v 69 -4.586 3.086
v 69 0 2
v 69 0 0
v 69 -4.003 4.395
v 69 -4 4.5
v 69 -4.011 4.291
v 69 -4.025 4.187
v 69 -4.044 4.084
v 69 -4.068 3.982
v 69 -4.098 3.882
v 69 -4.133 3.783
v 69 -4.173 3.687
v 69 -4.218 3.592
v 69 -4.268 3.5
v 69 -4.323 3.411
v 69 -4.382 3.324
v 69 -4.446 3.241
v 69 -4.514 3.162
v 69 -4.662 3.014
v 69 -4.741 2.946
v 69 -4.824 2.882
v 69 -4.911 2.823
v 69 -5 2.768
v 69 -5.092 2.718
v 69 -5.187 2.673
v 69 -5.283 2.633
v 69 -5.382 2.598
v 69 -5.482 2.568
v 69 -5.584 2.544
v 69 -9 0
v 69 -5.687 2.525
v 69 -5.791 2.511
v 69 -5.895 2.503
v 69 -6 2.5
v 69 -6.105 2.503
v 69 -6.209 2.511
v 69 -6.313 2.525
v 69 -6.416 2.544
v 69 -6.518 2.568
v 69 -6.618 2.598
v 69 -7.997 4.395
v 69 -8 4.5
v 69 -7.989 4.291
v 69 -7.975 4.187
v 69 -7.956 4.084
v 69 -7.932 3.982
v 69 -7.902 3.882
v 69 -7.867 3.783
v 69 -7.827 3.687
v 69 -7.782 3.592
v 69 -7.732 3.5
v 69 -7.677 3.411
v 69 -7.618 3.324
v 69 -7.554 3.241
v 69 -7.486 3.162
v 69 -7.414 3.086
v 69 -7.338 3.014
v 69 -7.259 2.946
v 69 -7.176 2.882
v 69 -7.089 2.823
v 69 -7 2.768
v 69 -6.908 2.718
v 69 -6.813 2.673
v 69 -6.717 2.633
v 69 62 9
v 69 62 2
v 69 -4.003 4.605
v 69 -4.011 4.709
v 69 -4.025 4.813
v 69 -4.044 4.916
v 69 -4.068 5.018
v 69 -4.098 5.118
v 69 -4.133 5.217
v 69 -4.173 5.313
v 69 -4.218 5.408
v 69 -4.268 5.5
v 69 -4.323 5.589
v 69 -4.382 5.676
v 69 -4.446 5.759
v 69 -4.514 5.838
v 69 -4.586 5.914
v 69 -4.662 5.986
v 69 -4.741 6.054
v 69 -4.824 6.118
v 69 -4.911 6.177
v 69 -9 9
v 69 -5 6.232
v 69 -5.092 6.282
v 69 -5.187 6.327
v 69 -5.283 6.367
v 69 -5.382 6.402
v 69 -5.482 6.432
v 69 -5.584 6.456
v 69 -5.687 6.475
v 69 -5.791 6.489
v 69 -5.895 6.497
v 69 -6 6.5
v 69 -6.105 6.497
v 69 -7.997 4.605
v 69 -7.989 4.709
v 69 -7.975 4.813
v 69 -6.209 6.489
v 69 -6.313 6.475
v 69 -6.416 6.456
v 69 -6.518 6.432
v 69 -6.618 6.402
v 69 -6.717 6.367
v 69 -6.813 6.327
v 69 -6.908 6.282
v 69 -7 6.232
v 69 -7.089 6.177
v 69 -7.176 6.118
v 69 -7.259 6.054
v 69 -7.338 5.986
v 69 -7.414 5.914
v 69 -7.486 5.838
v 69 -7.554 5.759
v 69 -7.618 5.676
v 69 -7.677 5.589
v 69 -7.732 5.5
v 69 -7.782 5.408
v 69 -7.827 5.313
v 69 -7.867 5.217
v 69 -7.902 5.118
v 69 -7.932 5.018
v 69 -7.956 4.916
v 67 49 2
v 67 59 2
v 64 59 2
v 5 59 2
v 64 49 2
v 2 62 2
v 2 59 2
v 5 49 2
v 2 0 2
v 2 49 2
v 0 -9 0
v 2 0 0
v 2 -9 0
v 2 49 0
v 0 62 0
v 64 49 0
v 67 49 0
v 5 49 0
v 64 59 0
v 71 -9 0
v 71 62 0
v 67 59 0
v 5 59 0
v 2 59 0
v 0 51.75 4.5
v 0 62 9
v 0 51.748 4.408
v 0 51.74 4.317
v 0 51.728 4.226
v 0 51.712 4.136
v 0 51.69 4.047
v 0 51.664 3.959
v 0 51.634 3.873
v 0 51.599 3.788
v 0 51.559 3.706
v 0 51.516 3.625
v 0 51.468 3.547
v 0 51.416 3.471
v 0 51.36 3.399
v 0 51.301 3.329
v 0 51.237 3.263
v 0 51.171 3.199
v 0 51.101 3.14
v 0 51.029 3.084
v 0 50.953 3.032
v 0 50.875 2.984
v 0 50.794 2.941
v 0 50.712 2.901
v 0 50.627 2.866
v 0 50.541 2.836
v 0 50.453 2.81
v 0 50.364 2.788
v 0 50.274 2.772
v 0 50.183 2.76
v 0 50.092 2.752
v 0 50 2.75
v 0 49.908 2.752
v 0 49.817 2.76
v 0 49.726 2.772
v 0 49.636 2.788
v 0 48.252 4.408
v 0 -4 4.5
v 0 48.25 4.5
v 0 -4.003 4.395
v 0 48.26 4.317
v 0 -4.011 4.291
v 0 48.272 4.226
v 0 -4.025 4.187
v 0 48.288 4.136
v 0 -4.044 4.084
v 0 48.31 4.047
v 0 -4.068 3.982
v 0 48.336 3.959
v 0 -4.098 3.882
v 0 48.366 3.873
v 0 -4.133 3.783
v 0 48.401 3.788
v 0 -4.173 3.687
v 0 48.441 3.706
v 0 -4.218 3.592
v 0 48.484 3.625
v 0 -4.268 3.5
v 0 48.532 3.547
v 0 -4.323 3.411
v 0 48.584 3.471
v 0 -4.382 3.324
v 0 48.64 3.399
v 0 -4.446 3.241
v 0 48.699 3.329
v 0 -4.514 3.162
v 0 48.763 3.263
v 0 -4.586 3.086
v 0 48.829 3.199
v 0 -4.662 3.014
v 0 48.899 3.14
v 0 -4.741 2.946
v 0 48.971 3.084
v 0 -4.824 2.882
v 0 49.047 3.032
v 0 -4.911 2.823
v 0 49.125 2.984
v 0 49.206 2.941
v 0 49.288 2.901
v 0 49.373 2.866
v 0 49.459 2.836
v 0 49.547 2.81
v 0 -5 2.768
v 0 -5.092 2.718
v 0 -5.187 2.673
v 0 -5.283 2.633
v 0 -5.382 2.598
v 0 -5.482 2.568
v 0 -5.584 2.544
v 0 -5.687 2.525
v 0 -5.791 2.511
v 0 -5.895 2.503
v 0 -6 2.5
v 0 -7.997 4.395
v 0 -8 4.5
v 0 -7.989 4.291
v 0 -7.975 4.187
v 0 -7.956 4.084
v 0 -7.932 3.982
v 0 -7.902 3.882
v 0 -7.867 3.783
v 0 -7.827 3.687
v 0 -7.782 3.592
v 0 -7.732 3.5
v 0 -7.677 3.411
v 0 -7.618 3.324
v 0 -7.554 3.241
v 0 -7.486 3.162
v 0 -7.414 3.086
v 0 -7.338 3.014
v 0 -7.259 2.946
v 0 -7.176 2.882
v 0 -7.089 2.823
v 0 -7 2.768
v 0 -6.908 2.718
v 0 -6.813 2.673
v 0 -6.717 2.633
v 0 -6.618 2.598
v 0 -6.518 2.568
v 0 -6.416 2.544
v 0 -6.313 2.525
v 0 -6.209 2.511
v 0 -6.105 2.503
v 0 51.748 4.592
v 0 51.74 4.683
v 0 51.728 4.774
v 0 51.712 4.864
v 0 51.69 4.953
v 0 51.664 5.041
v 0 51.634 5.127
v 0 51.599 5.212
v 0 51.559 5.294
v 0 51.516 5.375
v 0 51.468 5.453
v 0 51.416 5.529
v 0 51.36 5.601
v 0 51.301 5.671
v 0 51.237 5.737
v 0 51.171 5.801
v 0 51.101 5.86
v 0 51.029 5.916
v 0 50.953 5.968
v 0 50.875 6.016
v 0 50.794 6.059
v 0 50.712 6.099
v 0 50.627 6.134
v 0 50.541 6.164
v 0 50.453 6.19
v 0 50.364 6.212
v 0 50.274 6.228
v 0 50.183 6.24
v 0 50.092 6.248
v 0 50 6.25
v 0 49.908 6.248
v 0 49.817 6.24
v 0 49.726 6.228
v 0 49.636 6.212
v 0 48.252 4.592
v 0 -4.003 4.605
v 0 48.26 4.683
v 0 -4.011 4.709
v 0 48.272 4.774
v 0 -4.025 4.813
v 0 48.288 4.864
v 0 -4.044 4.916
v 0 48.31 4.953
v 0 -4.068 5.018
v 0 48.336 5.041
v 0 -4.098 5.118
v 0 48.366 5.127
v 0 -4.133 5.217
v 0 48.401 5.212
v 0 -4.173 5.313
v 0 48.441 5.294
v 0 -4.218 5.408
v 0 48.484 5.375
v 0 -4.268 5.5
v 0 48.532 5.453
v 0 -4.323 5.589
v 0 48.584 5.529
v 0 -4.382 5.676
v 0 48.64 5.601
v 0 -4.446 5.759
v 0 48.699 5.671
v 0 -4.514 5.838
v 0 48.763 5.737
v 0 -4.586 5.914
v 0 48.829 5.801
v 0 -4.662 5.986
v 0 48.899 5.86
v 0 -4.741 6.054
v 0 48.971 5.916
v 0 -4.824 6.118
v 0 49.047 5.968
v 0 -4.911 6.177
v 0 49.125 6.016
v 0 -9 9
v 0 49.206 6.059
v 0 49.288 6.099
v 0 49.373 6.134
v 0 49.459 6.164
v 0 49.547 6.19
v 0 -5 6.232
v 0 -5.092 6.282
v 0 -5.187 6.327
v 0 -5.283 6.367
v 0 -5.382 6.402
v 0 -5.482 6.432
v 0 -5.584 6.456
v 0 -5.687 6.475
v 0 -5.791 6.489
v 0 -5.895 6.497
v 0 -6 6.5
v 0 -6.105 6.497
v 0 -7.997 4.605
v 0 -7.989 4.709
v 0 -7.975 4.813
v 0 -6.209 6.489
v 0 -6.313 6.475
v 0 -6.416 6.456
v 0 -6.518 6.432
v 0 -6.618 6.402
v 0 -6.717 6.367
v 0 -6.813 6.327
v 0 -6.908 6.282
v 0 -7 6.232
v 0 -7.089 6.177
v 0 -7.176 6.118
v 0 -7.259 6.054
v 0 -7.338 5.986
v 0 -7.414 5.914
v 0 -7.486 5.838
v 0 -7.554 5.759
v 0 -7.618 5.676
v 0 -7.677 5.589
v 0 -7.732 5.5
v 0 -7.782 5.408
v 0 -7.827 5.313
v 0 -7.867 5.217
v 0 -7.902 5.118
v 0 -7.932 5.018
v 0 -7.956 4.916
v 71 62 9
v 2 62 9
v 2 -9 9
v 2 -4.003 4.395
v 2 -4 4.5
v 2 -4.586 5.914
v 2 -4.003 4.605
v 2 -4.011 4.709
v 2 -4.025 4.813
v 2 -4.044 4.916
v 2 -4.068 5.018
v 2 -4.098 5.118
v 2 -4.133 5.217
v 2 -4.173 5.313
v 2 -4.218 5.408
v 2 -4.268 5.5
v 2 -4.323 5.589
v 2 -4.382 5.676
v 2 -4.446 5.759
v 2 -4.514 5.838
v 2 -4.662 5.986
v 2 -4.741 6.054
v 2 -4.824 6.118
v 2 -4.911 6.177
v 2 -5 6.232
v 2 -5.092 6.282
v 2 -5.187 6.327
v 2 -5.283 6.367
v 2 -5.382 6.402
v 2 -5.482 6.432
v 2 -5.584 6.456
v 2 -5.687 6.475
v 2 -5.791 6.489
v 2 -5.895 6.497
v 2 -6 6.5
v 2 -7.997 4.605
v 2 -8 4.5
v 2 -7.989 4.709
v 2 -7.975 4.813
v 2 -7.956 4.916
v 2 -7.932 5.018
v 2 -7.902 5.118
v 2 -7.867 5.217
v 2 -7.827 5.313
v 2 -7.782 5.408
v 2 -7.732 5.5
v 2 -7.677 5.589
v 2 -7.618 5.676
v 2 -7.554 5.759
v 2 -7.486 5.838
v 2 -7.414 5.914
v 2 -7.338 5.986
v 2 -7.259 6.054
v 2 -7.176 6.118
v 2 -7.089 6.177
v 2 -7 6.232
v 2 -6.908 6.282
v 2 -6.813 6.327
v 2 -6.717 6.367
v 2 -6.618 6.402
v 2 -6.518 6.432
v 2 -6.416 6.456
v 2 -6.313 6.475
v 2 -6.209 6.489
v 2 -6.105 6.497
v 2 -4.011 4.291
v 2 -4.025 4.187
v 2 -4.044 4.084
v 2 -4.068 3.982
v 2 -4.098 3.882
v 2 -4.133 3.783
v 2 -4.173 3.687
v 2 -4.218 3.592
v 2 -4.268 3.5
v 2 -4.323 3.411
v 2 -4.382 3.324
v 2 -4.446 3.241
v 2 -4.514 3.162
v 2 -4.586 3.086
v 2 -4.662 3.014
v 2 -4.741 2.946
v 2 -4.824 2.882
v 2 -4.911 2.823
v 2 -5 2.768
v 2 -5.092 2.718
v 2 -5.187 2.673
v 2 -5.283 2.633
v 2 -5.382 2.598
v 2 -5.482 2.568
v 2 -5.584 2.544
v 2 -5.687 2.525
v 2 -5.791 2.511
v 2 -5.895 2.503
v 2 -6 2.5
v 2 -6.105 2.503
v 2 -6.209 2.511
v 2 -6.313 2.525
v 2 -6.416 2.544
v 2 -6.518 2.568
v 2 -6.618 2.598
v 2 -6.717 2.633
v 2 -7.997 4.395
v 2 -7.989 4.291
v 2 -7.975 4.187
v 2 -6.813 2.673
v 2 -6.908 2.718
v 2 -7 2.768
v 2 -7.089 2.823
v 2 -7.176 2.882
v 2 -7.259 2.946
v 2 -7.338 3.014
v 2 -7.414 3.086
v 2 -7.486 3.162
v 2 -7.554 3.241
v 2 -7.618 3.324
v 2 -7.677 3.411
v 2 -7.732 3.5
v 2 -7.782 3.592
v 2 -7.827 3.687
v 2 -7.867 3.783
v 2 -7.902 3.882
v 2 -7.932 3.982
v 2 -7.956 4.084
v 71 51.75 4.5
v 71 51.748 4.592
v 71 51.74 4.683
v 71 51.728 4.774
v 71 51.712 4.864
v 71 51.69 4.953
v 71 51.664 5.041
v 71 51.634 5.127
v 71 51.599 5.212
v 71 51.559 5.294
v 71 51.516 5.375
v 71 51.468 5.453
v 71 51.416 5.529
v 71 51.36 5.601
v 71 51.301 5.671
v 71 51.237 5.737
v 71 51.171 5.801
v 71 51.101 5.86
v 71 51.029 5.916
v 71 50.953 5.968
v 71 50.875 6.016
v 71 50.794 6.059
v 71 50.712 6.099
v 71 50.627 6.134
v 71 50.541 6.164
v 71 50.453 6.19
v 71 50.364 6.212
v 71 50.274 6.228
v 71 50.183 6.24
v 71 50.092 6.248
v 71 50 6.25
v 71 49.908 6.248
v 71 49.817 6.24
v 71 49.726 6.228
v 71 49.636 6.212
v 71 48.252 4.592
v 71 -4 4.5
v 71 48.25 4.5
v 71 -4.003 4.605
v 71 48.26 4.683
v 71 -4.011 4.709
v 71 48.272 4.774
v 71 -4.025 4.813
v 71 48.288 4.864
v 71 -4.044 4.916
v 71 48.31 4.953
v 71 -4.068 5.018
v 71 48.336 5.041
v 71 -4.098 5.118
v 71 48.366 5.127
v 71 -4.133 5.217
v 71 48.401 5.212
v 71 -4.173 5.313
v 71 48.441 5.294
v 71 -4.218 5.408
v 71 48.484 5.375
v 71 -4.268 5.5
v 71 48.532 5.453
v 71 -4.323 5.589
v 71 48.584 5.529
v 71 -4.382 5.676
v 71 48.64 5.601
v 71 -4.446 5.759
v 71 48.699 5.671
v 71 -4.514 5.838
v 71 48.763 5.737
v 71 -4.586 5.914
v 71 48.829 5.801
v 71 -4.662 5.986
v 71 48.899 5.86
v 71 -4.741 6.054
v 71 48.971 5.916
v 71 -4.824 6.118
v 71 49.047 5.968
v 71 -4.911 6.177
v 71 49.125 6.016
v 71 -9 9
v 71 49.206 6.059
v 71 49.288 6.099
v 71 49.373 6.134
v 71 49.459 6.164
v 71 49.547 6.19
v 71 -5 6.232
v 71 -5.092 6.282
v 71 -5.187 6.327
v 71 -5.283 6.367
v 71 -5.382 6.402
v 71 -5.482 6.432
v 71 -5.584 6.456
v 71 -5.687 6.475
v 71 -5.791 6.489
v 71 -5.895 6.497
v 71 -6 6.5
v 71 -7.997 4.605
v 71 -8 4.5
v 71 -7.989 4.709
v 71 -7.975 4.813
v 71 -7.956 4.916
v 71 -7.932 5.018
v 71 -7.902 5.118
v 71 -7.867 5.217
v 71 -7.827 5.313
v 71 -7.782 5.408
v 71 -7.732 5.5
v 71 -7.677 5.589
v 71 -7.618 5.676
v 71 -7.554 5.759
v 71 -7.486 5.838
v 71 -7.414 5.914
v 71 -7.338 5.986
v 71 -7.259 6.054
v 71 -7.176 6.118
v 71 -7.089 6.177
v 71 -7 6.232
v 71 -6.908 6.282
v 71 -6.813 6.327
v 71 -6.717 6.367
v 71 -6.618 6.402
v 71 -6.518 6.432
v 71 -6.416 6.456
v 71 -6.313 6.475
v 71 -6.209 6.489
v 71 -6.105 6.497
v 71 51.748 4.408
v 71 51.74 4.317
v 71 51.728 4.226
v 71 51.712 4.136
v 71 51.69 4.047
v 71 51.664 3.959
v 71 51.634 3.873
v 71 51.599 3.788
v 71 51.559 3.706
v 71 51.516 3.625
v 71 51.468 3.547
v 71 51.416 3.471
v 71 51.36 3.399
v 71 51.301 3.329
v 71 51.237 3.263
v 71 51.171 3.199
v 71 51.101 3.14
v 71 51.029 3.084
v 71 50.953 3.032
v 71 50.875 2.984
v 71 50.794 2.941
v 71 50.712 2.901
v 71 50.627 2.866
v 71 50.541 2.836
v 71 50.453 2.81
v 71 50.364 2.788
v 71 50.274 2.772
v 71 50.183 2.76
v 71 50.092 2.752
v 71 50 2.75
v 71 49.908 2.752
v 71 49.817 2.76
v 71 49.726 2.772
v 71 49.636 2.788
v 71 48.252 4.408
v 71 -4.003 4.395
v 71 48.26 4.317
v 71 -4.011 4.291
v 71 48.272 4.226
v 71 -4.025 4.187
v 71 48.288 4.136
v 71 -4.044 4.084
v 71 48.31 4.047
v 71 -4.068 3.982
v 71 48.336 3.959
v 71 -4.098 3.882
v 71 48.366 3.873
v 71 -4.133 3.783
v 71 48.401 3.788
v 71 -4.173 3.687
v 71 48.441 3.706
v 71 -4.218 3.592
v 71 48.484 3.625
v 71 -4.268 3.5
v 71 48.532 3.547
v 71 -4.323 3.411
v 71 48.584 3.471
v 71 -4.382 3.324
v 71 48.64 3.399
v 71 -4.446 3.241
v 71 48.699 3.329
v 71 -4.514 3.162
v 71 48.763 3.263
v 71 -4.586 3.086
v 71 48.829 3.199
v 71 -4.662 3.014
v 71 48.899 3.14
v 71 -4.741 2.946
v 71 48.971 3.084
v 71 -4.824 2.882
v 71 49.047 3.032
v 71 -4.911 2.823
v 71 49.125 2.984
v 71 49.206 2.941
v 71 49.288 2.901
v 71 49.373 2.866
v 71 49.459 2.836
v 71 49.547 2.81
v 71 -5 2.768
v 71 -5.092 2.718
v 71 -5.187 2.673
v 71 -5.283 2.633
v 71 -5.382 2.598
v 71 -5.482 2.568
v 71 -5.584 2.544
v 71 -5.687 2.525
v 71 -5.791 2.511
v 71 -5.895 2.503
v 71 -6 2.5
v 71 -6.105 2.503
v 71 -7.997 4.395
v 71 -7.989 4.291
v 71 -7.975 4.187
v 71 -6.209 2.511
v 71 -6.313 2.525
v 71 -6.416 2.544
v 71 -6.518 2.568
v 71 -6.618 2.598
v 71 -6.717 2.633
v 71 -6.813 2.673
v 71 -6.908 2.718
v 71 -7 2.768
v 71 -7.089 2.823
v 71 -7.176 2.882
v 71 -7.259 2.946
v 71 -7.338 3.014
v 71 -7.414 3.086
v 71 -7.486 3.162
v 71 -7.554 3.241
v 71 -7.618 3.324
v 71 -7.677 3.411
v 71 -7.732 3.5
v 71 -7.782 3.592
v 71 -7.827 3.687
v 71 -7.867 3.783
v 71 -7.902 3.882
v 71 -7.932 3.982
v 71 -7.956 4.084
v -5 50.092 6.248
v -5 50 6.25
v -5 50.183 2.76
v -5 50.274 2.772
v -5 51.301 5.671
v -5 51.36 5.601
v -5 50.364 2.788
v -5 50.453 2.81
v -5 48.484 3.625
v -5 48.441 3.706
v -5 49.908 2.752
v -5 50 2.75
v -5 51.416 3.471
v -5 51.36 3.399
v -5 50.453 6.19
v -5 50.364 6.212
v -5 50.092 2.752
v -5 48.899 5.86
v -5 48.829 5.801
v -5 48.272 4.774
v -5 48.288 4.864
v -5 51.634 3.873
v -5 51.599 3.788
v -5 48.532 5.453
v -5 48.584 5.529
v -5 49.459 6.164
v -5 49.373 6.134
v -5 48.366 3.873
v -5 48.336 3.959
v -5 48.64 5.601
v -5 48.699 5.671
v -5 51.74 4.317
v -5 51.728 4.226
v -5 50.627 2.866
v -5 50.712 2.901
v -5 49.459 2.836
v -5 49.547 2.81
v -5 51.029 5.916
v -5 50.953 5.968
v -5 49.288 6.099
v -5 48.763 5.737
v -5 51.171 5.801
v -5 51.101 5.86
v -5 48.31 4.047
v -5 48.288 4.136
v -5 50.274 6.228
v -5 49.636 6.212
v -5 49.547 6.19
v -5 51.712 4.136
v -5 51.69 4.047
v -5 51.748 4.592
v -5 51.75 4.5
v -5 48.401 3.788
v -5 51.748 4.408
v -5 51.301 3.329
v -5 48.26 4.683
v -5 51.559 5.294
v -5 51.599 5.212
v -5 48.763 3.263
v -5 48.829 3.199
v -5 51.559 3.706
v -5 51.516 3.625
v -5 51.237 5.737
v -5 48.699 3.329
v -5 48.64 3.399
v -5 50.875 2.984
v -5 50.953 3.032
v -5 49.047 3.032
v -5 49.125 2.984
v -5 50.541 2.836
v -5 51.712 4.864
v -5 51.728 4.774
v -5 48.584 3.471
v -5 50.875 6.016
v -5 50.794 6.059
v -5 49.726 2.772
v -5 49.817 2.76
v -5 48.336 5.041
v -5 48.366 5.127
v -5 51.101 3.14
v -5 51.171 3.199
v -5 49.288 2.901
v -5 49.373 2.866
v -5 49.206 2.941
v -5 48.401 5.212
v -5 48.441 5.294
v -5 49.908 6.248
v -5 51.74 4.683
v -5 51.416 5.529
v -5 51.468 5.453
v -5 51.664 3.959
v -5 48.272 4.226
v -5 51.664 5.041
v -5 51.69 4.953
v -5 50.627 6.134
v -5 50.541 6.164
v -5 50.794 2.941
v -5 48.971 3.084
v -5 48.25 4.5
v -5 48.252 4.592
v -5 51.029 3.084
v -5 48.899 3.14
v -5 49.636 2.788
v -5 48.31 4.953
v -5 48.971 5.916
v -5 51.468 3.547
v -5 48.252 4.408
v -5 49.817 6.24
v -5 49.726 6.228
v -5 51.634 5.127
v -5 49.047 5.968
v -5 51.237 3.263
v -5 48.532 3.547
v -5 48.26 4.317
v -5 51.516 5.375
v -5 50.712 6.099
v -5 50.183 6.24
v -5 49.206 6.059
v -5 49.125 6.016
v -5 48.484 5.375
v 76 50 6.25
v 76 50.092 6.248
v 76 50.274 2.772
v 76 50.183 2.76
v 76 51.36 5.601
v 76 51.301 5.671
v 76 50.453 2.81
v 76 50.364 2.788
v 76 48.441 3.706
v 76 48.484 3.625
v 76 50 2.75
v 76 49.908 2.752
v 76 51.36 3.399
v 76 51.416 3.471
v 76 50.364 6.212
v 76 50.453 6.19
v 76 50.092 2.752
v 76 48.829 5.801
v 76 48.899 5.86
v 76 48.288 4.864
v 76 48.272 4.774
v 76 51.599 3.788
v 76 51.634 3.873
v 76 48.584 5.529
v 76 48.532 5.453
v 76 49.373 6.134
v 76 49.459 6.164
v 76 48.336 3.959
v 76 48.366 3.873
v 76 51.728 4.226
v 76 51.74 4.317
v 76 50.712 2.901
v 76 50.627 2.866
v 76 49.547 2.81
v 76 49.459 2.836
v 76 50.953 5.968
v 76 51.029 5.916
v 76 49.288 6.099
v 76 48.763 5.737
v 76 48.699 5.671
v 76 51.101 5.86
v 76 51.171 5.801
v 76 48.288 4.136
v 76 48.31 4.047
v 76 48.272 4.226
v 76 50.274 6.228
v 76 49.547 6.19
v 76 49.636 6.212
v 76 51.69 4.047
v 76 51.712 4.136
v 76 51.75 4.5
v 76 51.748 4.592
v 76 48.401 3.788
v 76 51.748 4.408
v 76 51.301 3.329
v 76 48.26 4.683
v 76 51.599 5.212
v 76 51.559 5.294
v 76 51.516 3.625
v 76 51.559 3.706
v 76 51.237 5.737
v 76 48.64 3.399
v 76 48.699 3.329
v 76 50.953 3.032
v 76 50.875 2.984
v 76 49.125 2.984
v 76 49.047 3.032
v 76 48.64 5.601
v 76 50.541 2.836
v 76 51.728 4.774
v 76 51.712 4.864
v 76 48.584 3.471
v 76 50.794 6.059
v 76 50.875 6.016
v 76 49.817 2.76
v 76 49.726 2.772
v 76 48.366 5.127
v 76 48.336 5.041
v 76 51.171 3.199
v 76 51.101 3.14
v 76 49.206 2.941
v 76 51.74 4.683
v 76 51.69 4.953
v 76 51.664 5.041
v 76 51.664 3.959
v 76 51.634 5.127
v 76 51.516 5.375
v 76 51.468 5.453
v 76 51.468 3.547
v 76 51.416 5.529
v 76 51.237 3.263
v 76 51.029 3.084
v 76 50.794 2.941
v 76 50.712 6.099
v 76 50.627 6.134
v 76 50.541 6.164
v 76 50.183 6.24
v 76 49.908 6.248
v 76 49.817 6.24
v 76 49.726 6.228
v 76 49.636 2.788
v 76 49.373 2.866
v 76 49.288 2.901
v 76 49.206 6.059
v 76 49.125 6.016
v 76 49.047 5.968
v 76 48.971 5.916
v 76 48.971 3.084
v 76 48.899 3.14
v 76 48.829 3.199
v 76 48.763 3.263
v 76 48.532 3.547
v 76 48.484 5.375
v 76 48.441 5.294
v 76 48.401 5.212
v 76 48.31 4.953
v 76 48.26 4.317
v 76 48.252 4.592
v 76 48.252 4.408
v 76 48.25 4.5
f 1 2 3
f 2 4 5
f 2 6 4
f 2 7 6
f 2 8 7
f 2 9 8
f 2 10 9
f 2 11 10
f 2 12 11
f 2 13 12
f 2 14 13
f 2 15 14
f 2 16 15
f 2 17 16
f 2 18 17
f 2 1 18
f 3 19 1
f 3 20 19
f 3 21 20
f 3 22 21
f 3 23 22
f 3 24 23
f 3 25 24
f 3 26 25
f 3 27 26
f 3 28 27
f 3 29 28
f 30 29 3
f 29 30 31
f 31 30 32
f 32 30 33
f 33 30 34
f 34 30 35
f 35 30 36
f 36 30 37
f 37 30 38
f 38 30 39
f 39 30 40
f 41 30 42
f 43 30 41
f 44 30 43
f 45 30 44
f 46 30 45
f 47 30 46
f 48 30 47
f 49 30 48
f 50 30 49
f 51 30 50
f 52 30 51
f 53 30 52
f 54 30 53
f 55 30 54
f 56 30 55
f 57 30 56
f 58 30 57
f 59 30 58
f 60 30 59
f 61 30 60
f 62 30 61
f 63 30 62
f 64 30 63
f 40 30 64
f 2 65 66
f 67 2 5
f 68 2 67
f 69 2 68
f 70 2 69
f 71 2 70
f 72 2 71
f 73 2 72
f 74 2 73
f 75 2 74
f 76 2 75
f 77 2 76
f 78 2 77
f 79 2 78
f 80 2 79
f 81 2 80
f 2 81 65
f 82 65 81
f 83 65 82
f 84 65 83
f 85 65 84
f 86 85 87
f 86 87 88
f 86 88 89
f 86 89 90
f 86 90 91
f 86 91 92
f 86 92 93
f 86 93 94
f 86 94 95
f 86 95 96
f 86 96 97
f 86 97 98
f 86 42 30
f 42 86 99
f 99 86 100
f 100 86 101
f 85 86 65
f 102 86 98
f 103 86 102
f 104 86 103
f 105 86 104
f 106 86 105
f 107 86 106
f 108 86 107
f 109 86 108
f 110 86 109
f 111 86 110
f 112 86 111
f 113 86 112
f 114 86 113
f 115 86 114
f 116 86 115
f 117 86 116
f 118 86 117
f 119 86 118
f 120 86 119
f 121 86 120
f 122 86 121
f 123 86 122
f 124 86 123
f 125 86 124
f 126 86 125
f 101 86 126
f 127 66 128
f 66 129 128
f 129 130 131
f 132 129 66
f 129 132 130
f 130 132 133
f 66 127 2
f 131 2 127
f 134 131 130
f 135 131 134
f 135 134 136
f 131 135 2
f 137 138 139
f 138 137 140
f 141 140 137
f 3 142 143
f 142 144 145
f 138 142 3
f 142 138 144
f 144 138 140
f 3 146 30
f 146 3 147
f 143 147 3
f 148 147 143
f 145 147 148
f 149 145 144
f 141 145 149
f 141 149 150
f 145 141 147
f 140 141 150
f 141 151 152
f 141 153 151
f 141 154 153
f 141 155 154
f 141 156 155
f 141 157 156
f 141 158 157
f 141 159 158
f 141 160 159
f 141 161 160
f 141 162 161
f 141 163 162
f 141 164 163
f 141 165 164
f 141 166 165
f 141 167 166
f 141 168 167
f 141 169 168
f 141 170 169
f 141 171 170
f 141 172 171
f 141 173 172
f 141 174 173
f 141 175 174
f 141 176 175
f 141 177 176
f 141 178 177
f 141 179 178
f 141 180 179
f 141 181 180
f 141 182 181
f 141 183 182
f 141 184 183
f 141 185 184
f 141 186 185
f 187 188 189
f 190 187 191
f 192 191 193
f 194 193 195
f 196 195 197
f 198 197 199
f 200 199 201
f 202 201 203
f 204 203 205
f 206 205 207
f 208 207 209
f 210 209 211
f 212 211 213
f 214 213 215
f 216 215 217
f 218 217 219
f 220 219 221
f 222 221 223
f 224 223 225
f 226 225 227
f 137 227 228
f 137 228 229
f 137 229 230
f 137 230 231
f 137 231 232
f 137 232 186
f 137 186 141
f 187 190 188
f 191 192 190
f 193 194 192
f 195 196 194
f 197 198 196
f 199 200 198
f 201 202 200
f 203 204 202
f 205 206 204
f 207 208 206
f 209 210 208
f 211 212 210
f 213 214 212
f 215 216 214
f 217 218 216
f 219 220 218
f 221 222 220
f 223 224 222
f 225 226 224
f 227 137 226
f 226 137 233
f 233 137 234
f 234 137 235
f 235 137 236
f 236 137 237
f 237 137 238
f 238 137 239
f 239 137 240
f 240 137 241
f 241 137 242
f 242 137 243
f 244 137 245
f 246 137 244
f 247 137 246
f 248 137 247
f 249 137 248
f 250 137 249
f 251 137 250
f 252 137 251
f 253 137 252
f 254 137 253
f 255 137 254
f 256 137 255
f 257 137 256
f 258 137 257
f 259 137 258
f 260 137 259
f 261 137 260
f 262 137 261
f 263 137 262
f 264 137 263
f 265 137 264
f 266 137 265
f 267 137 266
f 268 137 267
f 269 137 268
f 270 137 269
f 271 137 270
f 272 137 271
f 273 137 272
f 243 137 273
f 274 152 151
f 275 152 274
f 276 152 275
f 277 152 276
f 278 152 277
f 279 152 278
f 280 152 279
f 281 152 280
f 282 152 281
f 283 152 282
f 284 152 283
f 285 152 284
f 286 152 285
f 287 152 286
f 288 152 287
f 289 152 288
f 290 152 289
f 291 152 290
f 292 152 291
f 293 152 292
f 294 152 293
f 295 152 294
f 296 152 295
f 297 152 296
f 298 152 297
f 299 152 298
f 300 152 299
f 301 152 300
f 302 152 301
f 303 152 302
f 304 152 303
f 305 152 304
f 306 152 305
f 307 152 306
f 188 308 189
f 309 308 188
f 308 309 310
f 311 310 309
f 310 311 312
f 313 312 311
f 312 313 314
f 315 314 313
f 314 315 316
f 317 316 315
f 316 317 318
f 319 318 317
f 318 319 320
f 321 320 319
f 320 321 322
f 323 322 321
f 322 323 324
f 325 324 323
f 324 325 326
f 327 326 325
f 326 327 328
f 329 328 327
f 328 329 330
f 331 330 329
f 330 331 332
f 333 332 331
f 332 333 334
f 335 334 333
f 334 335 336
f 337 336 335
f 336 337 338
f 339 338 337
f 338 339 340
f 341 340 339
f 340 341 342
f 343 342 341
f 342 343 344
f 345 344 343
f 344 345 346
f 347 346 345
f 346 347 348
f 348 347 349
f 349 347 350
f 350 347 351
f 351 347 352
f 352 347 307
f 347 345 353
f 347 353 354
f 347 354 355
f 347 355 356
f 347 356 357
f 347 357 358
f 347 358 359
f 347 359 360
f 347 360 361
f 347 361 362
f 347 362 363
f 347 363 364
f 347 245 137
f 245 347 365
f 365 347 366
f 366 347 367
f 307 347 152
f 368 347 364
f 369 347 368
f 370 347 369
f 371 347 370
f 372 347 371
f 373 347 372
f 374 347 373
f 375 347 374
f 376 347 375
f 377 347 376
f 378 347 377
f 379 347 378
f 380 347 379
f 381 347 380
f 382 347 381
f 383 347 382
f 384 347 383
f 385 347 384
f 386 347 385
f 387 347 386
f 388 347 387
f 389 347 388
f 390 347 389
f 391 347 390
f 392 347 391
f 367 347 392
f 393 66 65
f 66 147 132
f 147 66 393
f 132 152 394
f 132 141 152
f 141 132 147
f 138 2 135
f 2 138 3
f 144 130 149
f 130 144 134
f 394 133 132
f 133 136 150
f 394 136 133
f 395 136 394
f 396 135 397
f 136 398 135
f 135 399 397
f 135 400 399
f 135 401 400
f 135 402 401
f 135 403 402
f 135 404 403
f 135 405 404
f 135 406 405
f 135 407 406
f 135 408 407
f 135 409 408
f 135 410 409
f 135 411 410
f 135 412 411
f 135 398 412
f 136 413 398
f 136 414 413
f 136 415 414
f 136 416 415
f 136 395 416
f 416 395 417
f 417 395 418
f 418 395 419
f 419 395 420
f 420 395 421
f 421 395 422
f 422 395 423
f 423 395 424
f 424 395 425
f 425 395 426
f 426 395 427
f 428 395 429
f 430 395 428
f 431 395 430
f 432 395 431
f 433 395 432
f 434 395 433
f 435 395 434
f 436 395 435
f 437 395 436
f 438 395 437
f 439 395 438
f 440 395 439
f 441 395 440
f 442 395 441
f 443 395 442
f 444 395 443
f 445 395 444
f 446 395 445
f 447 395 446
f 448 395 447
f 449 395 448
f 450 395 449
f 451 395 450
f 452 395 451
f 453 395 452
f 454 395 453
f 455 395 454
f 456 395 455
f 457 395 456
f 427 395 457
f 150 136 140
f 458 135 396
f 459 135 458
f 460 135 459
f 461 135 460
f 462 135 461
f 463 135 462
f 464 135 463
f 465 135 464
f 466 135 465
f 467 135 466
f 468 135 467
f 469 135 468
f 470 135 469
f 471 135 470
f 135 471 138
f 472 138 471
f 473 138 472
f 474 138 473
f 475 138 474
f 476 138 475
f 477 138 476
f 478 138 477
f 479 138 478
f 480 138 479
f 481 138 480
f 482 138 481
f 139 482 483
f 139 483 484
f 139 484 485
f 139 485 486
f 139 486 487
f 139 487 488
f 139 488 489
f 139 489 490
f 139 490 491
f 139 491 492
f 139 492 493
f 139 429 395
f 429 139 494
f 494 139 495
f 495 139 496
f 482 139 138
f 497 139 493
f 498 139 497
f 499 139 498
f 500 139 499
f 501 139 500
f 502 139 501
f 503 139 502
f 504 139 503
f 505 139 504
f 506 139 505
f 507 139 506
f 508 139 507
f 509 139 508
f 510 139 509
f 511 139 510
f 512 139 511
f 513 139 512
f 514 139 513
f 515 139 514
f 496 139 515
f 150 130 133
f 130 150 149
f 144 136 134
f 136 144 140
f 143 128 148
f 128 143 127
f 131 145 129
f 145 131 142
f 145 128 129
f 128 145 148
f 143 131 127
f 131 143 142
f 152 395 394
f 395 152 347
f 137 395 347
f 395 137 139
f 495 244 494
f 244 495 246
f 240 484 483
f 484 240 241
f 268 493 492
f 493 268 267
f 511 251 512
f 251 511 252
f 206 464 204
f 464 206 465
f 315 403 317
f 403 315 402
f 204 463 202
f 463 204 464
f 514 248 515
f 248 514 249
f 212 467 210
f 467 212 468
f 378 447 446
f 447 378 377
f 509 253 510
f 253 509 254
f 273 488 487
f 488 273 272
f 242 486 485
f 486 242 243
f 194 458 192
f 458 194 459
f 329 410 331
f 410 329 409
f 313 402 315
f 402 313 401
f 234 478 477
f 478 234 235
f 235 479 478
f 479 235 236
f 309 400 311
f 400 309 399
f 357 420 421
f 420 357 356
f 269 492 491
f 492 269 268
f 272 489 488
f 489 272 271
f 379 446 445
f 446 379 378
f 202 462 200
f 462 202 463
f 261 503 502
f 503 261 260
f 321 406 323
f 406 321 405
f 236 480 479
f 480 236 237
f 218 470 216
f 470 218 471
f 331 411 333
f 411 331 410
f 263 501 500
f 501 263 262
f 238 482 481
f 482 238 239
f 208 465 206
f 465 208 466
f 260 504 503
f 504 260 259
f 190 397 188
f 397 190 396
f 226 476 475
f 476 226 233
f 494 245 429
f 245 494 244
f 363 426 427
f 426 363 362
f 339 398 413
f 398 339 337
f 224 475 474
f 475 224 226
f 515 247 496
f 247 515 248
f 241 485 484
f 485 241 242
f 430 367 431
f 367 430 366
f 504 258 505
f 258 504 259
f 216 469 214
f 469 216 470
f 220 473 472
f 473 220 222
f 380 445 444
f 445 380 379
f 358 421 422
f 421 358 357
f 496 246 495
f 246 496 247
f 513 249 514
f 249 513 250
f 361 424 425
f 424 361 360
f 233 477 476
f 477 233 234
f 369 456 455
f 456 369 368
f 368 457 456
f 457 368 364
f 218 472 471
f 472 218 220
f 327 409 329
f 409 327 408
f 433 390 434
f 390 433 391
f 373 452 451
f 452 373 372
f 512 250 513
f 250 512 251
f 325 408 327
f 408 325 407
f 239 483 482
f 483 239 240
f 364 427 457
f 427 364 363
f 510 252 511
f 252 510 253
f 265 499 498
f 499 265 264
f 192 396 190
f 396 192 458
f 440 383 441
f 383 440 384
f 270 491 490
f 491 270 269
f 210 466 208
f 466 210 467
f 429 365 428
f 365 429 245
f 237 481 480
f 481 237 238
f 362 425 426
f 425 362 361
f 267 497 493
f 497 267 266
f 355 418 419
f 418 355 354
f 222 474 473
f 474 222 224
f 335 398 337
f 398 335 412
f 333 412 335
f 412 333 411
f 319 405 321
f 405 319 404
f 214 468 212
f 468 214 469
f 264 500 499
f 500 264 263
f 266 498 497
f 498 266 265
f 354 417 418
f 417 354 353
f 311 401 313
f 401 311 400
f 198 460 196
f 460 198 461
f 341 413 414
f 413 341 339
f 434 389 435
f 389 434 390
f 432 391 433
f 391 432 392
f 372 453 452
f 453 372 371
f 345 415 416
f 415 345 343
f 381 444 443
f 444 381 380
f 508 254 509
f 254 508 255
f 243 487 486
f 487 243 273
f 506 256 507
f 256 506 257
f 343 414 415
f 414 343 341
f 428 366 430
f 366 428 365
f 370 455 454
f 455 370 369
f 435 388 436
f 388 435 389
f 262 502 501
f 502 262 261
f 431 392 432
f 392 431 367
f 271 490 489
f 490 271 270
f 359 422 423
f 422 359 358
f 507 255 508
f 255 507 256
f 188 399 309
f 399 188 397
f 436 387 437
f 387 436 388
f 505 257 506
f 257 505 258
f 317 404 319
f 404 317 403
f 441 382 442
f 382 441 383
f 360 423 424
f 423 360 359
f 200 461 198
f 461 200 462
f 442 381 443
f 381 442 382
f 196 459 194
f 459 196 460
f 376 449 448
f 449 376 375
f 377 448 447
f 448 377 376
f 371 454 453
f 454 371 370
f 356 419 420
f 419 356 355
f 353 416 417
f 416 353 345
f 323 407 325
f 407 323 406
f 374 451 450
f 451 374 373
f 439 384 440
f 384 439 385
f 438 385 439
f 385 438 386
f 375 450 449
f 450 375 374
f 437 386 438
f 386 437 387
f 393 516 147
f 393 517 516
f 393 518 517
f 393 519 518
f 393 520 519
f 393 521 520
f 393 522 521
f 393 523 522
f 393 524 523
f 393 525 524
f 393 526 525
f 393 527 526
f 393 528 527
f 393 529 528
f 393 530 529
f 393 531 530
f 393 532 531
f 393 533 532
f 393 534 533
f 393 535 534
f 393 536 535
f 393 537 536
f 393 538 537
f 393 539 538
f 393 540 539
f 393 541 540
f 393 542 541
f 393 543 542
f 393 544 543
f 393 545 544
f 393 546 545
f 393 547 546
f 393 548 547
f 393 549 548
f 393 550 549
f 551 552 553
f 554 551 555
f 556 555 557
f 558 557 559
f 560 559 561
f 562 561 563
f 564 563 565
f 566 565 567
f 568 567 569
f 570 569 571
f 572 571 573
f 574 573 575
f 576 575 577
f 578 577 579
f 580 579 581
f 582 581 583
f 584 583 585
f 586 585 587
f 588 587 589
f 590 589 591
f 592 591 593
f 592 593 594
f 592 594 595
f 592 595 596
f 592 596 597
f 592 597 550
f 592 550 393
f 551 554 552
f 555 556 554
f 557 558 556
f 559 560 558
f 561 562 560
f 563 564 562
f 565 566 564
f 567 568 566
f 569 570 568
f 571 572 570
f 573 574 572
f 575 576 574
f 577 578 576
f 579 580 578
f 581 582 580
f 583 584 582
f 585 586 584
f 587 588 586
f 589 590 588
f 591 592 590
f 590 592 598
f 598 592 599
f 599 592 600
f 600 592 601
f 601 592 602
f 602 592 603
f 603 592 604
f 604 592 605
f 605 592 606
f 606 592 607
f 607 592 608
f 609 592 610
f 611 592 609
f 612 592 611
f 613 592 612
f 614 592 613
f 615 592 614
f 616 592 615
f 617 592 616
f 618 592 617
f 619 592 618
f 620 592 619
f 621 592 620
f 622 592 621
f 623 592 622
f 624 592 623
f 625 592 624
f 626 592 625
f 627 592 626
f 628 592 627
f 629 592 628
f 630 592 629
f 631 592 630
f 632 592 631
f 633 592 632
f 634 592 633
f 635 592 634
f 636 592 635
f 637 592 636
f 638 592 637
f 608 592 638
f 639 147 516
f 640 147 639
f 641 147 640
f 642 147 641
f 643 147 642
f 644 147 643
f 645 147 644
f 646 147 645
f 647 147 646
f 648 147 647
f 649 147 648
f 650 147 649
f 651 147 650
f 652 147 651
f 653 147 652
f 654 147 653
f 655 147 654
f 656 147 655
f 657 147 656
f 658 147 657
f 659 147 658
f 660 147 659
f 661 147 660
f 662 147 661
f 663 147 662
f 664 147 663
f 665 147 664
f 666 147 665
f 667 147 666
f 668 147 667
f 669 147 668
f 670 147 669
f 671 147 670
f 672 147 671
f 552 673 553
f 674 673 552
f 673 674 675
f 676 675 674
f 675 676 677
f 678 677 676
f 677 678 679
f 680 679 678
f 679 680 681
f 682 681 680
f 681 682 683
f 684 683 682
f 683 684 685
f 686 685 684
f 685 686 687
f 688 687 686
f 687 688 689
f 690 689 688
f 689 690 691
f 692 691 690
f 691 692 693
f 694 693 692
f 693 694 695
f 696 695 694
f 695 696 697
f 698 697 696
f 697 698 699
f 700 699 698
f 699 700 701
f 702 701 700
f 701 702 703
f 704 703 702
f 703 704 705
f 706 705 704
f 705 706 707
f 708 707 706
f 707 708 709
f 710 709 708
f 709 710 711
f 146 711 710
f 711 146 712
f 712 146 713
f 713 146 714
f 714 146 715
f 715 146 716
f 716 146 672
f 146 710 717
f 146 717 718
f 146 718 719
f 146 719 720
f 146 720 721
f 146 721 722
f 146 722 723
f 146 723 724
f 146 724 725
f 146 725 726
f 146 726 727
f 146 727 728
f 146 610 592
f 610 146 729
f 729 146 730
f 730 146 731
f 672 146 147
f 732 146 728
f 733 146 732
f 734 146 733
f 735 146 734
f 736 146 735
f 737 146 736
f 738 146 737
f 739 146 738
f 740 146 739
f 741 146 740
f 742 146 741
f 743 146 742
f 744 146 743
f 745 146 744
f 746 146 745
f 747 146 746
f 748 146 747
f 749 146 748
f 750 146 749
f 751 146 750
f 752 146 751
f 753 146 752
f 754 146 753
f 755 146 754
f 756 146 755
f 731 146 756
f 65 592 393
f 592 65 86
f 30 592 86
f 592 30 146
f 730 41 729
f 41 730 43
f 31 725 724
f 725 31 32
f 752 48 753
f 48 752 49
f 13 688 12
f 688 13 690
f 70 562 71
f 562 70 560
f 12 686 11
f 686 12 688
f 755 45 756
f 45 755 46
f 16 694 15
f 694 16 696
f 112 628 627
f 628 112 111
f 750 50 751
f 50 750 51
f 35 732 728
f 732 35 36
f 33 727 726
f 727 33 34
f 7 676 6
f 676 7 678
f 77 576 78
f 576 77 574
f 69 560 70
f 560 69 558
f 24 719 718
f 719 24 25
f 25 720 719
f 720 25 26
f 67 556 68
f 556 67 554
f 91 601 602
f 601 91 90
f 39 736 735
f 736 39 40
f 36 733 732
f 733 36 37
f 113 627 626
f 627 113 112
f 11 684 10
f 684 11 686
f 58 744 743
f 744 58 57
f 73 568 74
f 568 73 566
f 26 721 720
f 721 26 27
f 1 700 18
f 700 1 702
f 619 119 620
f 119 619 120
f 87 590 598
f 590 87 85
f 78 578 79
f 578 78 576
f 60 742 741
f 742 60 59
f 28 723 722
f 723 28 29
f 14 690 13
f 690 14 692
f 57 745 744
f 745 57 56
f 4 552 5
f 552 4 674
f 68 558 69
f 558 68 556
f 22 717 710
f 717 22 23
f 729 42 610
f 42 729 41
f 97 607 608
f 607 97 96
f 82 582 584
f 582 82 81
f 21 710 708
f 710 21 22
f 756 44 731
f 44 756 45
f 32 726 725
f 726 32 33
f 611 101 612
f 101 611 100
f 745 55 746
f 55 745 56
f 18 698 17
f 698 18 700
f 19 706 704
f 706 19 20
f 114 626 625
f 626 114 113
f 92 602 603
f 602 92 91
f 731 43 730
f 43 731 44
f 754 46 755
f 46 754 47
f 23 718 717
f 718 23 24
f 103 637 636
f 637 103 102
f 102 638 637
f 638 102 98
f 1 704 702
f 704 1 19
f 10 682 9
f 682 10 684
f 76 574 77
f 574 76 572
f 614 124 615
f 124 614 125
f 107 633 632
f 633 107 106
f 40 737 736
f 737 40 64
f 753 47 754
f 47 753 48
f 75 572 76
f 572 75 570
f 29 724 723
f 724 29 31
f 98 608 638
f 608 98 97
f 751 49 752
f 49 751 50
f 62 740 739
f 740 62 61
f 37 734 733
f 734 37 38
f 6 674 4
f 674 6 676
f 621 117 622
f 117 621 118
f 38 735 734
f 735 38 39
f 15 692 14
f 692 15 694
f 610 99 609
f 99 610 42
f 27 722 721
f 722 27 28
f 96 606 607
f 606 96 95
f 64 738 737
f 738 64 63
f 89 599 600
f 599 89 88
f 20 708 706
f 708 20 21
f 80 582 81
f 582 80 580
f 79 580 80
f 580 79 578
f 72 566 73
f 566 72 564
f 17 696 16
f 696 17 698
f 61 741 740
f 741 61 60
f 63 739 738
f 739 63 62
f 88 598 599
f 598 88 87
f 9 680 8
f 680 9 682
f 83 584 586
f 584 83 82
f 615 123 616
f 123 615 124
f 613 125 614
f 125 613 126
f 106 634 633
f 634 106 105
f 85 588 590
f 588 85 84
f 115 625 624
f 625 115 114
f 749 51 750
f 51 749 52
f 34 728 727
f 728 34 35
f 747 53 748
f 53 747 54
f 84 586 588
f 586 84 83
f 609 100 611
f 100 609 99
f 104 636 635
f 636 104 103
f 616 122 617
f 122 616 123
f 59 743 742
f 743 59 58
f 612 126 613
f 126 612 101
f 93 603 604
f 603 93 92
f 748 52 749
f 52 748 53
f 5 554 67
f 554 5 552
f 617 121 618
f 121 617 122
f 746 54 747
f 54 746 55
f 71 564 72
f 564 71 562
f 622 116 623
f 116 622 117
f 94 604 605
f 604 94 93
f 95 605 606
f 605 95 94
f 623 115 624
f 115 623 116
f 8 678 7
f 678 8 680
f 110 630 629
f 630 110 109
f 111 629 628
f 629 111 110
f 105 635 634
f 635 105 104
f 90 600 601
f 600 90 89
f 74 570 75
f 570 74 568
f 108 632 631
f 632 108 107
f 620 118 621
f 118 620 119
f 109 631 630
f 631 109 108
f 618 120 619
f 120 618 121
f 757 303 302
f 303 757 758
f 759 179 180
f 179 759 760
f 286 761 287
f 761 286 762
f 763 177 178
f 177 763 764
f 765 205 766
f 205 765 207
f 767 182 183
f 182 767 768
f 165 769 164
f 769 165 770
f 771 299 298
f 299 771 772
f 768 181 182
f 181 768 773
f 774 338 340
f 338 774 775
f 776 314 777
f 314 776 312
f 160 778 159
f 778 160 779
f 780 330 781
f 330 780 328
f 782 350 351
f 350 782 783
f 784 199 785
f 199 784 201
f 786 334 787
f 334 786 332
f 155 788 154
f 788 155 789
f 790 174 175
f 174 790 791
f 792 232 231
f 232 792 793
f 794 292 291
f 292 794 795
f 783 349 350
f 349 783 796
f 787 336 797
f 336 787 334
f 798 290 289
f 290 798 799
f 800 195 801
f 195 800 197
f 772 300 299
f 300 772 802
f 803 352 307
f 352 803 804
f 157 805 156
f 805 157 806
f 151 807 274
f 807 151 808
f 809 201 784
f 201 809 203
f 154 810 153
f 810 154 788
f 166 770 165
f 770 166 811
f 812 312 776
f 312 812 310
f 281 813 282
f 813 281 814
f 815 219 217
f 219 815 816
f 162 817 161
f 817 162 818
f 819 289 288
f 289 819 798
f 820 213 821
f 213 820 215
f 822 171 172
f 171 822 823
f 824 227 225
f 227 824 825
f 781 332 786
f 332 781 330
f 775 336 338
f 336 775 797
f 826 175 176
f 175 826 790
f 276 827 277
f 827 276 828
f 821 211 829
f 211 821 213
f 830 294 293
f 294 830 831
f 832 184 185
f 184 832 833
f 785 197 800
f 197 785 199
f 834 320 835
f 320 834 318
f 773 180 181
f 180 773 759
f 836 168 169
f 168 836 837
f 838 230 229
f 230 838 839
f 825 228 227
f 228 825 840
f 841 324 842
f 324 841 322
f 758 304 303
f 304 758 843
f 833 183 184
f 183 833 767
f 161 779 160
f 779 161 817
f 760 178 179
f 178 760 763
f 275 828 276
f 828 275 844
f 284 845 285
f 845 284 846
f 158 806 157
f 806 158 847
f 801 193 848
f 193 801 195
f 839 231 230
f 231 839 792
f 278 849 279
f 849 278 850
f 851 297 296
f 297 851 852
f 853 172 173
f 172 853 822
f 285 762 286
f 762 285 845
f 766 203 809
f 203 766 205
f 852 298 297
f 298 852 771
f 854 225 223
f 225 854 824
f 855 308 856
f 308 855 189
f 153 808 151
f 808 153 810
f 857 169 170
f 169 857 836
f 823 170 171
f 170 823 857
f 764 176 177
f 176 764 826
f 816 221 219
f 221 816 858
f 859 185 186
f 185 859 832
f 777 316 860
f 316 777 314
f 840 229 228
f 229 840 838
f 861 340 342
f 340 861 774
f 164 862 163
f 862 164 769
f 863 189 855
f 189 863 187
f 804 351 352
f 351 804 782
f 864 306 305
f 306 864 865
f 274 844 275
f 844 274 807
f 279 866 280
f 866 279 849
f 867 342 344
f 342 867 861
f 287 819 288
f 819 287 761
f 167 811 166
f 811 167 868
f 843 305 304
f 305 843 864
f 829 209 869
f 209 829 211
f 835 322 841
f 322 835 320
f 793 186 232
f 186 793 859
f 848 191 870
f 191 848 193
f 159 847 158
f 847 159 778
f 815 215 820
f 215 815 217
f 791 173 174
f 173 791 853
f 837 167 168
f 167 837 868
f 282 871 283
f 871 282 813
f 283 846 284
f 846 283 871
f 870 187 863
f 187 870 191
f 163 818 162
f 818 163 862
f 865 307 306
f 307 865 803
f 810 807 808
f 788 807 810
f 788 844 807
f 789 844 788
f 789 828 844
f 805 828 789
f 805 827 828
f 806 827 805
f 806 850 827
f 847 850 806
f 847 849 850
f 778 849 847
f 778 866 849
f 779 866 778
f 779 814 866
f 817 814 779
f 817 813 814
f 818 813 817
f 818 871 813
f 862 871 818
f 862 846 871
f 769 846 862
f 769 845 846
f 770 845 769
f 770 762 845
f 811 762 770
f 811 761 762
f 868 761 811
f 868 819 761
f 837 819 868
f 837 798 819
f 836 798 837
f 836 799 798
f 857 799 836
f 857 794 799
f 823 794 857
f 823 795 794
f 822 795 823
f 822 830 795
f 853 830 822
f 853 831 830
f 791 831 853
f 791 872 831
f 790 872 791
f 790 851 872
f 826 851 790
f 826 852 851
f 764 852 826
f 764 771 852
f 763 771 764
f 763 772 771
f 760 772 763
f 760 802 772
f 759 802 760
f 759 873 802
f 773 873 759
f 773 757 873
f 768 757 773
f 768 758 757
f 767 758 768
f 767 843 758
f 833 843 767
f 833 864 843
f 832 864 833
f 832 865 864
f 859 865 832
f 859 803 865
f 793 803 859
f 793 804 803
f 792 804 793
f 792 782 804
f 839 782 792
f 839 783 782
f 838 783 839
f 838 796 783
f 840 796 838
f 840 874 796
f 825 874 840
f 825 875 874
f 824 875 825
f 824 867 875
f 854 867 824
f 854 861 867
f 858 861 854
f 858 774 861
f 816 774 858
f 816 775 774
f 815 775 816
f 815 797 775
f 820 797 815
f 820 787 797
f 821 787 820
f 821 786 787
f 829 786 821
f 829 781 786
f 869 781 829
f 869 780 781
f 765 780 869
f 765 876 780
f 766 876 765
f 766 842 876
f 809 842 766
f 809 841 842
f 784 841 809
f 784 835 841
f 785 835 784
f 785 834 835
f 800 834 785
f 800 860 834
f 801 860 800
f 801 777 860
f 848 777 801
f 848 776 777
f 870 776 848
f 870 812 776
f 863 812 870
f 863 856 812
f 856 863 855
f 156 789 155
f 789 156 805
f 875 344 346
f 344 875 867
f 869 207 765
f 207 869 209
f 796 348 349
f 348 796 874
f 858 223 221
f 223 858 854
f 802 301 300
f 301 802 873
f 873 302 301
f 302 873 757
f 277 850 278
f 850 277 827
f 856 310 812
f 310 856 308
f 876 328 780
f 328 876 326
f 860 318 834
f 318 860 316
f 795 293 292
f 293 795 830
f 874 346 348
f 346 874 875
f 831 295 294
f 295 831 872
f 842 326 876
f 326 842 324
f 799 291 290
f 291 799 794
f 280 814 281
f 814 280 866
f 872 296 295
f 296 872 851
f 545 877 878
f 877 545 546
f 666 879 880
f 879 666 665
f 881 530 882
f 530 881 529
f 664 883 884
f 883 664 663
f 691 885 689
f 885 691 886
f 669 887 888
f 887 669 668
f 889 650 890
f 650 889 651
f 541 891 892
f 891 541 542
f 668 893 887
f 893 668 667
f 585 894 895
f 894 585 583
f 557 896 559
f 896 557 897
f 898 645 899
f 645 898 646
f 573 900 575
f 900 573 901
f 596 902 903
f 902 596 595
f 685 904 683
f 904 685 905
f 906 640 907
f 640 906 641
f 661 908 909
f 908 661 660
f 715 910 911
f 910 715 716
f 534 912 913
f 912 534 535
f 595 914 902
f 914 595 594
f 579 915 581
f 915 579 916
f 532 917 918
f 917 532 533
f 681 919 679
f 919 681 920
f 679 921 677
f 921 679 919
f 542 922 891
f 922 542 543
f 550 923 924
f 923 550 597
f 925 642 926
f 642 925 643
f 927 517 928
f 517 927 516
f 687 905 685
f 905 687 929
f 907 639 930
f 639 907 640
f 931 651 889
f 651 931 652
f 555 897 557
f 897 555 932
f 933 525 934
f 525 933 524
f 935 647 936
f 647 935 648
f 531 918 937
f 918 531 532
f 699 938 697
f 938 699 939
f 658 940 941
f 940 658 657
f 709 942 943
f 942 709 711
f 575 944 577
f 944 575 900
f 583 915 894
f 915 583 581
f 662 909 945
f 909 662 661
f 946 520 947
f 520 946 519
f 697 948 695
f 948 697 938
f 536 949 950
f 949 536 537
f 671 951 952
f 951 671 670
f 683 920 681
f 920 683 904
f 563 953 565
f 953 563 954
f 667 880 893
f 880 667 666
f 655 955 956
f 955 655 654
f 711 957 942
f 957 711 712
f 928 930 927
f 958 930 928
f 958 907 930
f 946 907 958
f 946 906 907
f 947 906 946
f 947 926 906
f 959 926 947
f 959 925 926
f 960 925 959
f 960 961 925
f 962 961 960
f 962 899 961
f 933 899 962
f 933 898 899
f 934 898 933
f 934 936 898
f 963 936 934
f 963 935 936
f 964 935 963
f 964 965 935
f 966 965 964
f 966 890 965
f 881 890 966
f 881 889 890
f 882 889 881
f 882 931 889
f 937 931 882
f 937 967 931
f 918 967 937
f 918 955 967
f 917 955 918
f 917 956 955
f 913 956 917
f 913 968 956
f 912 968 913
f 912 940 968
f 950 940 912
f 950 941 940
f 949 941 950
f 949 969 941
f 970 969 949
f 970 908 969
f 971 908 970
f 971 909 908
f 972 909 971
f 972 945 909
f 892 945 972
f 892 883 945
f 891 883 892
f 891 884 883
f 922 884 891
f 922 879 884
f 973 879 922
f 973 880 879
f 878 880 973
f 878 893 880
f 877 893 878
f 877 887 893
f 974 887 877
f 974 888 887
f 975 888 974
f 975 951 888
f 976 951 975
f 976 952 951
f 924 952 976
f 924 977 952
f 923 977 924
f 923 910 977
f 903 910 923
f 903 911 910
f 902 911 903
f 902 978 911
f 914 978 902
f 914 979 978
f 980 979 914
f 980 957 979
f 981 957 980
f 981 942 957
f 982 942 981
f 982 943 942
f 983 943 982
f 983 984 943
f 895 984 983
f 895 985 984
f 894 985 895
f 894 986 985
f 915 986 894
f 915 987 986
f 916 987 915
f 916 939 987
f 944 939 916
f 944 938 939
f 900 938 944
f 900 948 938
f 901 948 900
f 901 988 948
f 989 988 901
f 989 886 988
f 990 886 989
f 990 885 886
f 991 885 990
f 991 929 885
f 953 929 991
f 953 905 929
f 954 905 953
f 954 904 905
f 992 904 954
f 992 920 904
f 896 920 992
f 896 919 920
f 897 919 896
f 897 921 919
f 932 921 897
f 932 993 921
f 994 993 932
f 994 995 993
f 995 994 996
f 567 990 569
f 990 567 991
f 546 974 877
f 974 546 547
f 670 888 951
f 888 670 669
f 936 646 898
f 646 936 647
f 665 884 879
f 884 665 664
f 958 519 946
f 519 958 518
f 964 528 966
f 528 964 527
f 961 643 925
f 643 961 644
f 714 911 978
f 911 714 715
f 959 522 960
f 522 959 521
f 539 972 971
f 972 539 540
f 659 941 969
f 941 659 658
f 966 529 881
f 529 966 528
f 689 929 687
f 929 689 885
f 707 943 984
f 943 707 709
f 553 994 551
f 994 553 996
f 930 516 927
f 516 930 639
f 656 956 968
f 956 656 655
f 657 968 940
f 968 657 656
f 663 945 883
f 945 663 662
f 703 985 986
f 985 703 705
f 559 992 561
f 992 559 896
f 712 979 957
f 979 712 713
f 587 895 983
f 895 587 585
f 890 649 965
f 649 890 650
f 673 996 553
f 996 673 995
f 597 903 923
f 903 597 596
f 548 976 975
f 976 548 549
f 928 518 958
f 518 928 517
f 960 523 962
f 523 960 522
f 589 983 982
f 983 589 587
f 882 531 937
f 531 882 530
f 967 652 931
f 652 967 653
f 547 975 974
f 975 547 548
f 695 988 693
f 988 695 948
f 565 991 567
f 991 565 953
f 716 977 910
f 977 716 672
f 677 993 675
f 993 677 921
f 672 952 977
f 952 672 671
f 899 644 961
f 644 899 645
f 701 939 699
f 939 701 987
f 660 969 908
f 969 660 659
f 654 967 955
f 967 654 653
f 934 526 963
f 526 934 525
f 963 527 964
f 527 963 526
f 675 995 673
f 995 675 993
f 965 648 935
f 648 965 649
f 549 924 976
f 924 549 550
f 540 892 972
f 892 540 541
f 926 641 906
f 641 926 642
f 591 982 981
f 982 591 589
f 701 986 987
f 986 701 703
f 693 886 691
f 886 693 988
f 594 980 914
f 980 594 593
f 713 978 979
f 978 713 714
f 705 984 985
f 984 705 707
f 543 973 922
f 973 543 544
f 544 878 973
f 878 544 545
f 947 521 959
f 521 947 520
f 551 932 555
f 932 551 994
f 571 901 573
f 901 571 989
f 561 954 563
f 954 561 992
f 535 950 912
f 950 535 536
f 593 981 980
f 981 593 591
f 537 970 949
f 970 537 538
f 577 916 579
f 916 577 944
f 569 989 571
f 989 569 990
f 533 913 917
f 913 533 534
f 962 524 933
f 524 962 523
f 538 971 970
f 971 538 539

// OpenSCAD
width = 69;
depth = 62;
height = 2;

connect_hole_width = 3;
connect_hole_depth = 10;
connect_hole_width_offset = 2;
connect_hole_depth_offset = 3;

side_width = 2;
side_depth = 71;
side_height = 9;
side_hole_diameter = 4;

holder_width = 5;
holder_diameter = 3.5;
holder_depth_offset = 12;

$fn=120;

difference() {
    cube([width, depth, height]);
    translate([connect_hole_width_offset, depth - connect_hole_depth - connect_hole_depth_offset, -1]) cube([connect_hole_width, connect_hole_depth, height + 2]);
    translate([width - connect_hole_width - connect_hole_width_offset, depth - connect_hole_depth - connect_hole_depth_offset, -1]) cube([connect_hole_width, connect_hole_depth, height + 2]);
}

difference() {
    translate([0, depth - side_depth, 0]) cube([side_width, side_depth, side_height]);
    translate([-1, -6, side_height / 2]) rotate([0, 90, 0]) cylinder(d=side_hole_diameter, side_width + 2);
}
translate([-holder_width, depth - holder_depth_offset, side_height / 2]) rotate([0, 90, 0]) cylinder(d=holder_diameter, holder_width);

translate([width, 0, 0]) difference() {
    translate([0, depth - side_depth, 0]) cube([side_width, side_depth, side_height]);
    translate([-1, -6, side_height / 2]) rotate([0, 90, 0]) cylinder(d=side_hole_diameter, side_width + 2);
}
translate([width + holder_width + 2, 0, 0]) translate([-holder_width, depth - holder_depth_offset, side_height / 2]) rotate([0, 90, 0]) cylinder(d=holder_diameter, holder_width);
